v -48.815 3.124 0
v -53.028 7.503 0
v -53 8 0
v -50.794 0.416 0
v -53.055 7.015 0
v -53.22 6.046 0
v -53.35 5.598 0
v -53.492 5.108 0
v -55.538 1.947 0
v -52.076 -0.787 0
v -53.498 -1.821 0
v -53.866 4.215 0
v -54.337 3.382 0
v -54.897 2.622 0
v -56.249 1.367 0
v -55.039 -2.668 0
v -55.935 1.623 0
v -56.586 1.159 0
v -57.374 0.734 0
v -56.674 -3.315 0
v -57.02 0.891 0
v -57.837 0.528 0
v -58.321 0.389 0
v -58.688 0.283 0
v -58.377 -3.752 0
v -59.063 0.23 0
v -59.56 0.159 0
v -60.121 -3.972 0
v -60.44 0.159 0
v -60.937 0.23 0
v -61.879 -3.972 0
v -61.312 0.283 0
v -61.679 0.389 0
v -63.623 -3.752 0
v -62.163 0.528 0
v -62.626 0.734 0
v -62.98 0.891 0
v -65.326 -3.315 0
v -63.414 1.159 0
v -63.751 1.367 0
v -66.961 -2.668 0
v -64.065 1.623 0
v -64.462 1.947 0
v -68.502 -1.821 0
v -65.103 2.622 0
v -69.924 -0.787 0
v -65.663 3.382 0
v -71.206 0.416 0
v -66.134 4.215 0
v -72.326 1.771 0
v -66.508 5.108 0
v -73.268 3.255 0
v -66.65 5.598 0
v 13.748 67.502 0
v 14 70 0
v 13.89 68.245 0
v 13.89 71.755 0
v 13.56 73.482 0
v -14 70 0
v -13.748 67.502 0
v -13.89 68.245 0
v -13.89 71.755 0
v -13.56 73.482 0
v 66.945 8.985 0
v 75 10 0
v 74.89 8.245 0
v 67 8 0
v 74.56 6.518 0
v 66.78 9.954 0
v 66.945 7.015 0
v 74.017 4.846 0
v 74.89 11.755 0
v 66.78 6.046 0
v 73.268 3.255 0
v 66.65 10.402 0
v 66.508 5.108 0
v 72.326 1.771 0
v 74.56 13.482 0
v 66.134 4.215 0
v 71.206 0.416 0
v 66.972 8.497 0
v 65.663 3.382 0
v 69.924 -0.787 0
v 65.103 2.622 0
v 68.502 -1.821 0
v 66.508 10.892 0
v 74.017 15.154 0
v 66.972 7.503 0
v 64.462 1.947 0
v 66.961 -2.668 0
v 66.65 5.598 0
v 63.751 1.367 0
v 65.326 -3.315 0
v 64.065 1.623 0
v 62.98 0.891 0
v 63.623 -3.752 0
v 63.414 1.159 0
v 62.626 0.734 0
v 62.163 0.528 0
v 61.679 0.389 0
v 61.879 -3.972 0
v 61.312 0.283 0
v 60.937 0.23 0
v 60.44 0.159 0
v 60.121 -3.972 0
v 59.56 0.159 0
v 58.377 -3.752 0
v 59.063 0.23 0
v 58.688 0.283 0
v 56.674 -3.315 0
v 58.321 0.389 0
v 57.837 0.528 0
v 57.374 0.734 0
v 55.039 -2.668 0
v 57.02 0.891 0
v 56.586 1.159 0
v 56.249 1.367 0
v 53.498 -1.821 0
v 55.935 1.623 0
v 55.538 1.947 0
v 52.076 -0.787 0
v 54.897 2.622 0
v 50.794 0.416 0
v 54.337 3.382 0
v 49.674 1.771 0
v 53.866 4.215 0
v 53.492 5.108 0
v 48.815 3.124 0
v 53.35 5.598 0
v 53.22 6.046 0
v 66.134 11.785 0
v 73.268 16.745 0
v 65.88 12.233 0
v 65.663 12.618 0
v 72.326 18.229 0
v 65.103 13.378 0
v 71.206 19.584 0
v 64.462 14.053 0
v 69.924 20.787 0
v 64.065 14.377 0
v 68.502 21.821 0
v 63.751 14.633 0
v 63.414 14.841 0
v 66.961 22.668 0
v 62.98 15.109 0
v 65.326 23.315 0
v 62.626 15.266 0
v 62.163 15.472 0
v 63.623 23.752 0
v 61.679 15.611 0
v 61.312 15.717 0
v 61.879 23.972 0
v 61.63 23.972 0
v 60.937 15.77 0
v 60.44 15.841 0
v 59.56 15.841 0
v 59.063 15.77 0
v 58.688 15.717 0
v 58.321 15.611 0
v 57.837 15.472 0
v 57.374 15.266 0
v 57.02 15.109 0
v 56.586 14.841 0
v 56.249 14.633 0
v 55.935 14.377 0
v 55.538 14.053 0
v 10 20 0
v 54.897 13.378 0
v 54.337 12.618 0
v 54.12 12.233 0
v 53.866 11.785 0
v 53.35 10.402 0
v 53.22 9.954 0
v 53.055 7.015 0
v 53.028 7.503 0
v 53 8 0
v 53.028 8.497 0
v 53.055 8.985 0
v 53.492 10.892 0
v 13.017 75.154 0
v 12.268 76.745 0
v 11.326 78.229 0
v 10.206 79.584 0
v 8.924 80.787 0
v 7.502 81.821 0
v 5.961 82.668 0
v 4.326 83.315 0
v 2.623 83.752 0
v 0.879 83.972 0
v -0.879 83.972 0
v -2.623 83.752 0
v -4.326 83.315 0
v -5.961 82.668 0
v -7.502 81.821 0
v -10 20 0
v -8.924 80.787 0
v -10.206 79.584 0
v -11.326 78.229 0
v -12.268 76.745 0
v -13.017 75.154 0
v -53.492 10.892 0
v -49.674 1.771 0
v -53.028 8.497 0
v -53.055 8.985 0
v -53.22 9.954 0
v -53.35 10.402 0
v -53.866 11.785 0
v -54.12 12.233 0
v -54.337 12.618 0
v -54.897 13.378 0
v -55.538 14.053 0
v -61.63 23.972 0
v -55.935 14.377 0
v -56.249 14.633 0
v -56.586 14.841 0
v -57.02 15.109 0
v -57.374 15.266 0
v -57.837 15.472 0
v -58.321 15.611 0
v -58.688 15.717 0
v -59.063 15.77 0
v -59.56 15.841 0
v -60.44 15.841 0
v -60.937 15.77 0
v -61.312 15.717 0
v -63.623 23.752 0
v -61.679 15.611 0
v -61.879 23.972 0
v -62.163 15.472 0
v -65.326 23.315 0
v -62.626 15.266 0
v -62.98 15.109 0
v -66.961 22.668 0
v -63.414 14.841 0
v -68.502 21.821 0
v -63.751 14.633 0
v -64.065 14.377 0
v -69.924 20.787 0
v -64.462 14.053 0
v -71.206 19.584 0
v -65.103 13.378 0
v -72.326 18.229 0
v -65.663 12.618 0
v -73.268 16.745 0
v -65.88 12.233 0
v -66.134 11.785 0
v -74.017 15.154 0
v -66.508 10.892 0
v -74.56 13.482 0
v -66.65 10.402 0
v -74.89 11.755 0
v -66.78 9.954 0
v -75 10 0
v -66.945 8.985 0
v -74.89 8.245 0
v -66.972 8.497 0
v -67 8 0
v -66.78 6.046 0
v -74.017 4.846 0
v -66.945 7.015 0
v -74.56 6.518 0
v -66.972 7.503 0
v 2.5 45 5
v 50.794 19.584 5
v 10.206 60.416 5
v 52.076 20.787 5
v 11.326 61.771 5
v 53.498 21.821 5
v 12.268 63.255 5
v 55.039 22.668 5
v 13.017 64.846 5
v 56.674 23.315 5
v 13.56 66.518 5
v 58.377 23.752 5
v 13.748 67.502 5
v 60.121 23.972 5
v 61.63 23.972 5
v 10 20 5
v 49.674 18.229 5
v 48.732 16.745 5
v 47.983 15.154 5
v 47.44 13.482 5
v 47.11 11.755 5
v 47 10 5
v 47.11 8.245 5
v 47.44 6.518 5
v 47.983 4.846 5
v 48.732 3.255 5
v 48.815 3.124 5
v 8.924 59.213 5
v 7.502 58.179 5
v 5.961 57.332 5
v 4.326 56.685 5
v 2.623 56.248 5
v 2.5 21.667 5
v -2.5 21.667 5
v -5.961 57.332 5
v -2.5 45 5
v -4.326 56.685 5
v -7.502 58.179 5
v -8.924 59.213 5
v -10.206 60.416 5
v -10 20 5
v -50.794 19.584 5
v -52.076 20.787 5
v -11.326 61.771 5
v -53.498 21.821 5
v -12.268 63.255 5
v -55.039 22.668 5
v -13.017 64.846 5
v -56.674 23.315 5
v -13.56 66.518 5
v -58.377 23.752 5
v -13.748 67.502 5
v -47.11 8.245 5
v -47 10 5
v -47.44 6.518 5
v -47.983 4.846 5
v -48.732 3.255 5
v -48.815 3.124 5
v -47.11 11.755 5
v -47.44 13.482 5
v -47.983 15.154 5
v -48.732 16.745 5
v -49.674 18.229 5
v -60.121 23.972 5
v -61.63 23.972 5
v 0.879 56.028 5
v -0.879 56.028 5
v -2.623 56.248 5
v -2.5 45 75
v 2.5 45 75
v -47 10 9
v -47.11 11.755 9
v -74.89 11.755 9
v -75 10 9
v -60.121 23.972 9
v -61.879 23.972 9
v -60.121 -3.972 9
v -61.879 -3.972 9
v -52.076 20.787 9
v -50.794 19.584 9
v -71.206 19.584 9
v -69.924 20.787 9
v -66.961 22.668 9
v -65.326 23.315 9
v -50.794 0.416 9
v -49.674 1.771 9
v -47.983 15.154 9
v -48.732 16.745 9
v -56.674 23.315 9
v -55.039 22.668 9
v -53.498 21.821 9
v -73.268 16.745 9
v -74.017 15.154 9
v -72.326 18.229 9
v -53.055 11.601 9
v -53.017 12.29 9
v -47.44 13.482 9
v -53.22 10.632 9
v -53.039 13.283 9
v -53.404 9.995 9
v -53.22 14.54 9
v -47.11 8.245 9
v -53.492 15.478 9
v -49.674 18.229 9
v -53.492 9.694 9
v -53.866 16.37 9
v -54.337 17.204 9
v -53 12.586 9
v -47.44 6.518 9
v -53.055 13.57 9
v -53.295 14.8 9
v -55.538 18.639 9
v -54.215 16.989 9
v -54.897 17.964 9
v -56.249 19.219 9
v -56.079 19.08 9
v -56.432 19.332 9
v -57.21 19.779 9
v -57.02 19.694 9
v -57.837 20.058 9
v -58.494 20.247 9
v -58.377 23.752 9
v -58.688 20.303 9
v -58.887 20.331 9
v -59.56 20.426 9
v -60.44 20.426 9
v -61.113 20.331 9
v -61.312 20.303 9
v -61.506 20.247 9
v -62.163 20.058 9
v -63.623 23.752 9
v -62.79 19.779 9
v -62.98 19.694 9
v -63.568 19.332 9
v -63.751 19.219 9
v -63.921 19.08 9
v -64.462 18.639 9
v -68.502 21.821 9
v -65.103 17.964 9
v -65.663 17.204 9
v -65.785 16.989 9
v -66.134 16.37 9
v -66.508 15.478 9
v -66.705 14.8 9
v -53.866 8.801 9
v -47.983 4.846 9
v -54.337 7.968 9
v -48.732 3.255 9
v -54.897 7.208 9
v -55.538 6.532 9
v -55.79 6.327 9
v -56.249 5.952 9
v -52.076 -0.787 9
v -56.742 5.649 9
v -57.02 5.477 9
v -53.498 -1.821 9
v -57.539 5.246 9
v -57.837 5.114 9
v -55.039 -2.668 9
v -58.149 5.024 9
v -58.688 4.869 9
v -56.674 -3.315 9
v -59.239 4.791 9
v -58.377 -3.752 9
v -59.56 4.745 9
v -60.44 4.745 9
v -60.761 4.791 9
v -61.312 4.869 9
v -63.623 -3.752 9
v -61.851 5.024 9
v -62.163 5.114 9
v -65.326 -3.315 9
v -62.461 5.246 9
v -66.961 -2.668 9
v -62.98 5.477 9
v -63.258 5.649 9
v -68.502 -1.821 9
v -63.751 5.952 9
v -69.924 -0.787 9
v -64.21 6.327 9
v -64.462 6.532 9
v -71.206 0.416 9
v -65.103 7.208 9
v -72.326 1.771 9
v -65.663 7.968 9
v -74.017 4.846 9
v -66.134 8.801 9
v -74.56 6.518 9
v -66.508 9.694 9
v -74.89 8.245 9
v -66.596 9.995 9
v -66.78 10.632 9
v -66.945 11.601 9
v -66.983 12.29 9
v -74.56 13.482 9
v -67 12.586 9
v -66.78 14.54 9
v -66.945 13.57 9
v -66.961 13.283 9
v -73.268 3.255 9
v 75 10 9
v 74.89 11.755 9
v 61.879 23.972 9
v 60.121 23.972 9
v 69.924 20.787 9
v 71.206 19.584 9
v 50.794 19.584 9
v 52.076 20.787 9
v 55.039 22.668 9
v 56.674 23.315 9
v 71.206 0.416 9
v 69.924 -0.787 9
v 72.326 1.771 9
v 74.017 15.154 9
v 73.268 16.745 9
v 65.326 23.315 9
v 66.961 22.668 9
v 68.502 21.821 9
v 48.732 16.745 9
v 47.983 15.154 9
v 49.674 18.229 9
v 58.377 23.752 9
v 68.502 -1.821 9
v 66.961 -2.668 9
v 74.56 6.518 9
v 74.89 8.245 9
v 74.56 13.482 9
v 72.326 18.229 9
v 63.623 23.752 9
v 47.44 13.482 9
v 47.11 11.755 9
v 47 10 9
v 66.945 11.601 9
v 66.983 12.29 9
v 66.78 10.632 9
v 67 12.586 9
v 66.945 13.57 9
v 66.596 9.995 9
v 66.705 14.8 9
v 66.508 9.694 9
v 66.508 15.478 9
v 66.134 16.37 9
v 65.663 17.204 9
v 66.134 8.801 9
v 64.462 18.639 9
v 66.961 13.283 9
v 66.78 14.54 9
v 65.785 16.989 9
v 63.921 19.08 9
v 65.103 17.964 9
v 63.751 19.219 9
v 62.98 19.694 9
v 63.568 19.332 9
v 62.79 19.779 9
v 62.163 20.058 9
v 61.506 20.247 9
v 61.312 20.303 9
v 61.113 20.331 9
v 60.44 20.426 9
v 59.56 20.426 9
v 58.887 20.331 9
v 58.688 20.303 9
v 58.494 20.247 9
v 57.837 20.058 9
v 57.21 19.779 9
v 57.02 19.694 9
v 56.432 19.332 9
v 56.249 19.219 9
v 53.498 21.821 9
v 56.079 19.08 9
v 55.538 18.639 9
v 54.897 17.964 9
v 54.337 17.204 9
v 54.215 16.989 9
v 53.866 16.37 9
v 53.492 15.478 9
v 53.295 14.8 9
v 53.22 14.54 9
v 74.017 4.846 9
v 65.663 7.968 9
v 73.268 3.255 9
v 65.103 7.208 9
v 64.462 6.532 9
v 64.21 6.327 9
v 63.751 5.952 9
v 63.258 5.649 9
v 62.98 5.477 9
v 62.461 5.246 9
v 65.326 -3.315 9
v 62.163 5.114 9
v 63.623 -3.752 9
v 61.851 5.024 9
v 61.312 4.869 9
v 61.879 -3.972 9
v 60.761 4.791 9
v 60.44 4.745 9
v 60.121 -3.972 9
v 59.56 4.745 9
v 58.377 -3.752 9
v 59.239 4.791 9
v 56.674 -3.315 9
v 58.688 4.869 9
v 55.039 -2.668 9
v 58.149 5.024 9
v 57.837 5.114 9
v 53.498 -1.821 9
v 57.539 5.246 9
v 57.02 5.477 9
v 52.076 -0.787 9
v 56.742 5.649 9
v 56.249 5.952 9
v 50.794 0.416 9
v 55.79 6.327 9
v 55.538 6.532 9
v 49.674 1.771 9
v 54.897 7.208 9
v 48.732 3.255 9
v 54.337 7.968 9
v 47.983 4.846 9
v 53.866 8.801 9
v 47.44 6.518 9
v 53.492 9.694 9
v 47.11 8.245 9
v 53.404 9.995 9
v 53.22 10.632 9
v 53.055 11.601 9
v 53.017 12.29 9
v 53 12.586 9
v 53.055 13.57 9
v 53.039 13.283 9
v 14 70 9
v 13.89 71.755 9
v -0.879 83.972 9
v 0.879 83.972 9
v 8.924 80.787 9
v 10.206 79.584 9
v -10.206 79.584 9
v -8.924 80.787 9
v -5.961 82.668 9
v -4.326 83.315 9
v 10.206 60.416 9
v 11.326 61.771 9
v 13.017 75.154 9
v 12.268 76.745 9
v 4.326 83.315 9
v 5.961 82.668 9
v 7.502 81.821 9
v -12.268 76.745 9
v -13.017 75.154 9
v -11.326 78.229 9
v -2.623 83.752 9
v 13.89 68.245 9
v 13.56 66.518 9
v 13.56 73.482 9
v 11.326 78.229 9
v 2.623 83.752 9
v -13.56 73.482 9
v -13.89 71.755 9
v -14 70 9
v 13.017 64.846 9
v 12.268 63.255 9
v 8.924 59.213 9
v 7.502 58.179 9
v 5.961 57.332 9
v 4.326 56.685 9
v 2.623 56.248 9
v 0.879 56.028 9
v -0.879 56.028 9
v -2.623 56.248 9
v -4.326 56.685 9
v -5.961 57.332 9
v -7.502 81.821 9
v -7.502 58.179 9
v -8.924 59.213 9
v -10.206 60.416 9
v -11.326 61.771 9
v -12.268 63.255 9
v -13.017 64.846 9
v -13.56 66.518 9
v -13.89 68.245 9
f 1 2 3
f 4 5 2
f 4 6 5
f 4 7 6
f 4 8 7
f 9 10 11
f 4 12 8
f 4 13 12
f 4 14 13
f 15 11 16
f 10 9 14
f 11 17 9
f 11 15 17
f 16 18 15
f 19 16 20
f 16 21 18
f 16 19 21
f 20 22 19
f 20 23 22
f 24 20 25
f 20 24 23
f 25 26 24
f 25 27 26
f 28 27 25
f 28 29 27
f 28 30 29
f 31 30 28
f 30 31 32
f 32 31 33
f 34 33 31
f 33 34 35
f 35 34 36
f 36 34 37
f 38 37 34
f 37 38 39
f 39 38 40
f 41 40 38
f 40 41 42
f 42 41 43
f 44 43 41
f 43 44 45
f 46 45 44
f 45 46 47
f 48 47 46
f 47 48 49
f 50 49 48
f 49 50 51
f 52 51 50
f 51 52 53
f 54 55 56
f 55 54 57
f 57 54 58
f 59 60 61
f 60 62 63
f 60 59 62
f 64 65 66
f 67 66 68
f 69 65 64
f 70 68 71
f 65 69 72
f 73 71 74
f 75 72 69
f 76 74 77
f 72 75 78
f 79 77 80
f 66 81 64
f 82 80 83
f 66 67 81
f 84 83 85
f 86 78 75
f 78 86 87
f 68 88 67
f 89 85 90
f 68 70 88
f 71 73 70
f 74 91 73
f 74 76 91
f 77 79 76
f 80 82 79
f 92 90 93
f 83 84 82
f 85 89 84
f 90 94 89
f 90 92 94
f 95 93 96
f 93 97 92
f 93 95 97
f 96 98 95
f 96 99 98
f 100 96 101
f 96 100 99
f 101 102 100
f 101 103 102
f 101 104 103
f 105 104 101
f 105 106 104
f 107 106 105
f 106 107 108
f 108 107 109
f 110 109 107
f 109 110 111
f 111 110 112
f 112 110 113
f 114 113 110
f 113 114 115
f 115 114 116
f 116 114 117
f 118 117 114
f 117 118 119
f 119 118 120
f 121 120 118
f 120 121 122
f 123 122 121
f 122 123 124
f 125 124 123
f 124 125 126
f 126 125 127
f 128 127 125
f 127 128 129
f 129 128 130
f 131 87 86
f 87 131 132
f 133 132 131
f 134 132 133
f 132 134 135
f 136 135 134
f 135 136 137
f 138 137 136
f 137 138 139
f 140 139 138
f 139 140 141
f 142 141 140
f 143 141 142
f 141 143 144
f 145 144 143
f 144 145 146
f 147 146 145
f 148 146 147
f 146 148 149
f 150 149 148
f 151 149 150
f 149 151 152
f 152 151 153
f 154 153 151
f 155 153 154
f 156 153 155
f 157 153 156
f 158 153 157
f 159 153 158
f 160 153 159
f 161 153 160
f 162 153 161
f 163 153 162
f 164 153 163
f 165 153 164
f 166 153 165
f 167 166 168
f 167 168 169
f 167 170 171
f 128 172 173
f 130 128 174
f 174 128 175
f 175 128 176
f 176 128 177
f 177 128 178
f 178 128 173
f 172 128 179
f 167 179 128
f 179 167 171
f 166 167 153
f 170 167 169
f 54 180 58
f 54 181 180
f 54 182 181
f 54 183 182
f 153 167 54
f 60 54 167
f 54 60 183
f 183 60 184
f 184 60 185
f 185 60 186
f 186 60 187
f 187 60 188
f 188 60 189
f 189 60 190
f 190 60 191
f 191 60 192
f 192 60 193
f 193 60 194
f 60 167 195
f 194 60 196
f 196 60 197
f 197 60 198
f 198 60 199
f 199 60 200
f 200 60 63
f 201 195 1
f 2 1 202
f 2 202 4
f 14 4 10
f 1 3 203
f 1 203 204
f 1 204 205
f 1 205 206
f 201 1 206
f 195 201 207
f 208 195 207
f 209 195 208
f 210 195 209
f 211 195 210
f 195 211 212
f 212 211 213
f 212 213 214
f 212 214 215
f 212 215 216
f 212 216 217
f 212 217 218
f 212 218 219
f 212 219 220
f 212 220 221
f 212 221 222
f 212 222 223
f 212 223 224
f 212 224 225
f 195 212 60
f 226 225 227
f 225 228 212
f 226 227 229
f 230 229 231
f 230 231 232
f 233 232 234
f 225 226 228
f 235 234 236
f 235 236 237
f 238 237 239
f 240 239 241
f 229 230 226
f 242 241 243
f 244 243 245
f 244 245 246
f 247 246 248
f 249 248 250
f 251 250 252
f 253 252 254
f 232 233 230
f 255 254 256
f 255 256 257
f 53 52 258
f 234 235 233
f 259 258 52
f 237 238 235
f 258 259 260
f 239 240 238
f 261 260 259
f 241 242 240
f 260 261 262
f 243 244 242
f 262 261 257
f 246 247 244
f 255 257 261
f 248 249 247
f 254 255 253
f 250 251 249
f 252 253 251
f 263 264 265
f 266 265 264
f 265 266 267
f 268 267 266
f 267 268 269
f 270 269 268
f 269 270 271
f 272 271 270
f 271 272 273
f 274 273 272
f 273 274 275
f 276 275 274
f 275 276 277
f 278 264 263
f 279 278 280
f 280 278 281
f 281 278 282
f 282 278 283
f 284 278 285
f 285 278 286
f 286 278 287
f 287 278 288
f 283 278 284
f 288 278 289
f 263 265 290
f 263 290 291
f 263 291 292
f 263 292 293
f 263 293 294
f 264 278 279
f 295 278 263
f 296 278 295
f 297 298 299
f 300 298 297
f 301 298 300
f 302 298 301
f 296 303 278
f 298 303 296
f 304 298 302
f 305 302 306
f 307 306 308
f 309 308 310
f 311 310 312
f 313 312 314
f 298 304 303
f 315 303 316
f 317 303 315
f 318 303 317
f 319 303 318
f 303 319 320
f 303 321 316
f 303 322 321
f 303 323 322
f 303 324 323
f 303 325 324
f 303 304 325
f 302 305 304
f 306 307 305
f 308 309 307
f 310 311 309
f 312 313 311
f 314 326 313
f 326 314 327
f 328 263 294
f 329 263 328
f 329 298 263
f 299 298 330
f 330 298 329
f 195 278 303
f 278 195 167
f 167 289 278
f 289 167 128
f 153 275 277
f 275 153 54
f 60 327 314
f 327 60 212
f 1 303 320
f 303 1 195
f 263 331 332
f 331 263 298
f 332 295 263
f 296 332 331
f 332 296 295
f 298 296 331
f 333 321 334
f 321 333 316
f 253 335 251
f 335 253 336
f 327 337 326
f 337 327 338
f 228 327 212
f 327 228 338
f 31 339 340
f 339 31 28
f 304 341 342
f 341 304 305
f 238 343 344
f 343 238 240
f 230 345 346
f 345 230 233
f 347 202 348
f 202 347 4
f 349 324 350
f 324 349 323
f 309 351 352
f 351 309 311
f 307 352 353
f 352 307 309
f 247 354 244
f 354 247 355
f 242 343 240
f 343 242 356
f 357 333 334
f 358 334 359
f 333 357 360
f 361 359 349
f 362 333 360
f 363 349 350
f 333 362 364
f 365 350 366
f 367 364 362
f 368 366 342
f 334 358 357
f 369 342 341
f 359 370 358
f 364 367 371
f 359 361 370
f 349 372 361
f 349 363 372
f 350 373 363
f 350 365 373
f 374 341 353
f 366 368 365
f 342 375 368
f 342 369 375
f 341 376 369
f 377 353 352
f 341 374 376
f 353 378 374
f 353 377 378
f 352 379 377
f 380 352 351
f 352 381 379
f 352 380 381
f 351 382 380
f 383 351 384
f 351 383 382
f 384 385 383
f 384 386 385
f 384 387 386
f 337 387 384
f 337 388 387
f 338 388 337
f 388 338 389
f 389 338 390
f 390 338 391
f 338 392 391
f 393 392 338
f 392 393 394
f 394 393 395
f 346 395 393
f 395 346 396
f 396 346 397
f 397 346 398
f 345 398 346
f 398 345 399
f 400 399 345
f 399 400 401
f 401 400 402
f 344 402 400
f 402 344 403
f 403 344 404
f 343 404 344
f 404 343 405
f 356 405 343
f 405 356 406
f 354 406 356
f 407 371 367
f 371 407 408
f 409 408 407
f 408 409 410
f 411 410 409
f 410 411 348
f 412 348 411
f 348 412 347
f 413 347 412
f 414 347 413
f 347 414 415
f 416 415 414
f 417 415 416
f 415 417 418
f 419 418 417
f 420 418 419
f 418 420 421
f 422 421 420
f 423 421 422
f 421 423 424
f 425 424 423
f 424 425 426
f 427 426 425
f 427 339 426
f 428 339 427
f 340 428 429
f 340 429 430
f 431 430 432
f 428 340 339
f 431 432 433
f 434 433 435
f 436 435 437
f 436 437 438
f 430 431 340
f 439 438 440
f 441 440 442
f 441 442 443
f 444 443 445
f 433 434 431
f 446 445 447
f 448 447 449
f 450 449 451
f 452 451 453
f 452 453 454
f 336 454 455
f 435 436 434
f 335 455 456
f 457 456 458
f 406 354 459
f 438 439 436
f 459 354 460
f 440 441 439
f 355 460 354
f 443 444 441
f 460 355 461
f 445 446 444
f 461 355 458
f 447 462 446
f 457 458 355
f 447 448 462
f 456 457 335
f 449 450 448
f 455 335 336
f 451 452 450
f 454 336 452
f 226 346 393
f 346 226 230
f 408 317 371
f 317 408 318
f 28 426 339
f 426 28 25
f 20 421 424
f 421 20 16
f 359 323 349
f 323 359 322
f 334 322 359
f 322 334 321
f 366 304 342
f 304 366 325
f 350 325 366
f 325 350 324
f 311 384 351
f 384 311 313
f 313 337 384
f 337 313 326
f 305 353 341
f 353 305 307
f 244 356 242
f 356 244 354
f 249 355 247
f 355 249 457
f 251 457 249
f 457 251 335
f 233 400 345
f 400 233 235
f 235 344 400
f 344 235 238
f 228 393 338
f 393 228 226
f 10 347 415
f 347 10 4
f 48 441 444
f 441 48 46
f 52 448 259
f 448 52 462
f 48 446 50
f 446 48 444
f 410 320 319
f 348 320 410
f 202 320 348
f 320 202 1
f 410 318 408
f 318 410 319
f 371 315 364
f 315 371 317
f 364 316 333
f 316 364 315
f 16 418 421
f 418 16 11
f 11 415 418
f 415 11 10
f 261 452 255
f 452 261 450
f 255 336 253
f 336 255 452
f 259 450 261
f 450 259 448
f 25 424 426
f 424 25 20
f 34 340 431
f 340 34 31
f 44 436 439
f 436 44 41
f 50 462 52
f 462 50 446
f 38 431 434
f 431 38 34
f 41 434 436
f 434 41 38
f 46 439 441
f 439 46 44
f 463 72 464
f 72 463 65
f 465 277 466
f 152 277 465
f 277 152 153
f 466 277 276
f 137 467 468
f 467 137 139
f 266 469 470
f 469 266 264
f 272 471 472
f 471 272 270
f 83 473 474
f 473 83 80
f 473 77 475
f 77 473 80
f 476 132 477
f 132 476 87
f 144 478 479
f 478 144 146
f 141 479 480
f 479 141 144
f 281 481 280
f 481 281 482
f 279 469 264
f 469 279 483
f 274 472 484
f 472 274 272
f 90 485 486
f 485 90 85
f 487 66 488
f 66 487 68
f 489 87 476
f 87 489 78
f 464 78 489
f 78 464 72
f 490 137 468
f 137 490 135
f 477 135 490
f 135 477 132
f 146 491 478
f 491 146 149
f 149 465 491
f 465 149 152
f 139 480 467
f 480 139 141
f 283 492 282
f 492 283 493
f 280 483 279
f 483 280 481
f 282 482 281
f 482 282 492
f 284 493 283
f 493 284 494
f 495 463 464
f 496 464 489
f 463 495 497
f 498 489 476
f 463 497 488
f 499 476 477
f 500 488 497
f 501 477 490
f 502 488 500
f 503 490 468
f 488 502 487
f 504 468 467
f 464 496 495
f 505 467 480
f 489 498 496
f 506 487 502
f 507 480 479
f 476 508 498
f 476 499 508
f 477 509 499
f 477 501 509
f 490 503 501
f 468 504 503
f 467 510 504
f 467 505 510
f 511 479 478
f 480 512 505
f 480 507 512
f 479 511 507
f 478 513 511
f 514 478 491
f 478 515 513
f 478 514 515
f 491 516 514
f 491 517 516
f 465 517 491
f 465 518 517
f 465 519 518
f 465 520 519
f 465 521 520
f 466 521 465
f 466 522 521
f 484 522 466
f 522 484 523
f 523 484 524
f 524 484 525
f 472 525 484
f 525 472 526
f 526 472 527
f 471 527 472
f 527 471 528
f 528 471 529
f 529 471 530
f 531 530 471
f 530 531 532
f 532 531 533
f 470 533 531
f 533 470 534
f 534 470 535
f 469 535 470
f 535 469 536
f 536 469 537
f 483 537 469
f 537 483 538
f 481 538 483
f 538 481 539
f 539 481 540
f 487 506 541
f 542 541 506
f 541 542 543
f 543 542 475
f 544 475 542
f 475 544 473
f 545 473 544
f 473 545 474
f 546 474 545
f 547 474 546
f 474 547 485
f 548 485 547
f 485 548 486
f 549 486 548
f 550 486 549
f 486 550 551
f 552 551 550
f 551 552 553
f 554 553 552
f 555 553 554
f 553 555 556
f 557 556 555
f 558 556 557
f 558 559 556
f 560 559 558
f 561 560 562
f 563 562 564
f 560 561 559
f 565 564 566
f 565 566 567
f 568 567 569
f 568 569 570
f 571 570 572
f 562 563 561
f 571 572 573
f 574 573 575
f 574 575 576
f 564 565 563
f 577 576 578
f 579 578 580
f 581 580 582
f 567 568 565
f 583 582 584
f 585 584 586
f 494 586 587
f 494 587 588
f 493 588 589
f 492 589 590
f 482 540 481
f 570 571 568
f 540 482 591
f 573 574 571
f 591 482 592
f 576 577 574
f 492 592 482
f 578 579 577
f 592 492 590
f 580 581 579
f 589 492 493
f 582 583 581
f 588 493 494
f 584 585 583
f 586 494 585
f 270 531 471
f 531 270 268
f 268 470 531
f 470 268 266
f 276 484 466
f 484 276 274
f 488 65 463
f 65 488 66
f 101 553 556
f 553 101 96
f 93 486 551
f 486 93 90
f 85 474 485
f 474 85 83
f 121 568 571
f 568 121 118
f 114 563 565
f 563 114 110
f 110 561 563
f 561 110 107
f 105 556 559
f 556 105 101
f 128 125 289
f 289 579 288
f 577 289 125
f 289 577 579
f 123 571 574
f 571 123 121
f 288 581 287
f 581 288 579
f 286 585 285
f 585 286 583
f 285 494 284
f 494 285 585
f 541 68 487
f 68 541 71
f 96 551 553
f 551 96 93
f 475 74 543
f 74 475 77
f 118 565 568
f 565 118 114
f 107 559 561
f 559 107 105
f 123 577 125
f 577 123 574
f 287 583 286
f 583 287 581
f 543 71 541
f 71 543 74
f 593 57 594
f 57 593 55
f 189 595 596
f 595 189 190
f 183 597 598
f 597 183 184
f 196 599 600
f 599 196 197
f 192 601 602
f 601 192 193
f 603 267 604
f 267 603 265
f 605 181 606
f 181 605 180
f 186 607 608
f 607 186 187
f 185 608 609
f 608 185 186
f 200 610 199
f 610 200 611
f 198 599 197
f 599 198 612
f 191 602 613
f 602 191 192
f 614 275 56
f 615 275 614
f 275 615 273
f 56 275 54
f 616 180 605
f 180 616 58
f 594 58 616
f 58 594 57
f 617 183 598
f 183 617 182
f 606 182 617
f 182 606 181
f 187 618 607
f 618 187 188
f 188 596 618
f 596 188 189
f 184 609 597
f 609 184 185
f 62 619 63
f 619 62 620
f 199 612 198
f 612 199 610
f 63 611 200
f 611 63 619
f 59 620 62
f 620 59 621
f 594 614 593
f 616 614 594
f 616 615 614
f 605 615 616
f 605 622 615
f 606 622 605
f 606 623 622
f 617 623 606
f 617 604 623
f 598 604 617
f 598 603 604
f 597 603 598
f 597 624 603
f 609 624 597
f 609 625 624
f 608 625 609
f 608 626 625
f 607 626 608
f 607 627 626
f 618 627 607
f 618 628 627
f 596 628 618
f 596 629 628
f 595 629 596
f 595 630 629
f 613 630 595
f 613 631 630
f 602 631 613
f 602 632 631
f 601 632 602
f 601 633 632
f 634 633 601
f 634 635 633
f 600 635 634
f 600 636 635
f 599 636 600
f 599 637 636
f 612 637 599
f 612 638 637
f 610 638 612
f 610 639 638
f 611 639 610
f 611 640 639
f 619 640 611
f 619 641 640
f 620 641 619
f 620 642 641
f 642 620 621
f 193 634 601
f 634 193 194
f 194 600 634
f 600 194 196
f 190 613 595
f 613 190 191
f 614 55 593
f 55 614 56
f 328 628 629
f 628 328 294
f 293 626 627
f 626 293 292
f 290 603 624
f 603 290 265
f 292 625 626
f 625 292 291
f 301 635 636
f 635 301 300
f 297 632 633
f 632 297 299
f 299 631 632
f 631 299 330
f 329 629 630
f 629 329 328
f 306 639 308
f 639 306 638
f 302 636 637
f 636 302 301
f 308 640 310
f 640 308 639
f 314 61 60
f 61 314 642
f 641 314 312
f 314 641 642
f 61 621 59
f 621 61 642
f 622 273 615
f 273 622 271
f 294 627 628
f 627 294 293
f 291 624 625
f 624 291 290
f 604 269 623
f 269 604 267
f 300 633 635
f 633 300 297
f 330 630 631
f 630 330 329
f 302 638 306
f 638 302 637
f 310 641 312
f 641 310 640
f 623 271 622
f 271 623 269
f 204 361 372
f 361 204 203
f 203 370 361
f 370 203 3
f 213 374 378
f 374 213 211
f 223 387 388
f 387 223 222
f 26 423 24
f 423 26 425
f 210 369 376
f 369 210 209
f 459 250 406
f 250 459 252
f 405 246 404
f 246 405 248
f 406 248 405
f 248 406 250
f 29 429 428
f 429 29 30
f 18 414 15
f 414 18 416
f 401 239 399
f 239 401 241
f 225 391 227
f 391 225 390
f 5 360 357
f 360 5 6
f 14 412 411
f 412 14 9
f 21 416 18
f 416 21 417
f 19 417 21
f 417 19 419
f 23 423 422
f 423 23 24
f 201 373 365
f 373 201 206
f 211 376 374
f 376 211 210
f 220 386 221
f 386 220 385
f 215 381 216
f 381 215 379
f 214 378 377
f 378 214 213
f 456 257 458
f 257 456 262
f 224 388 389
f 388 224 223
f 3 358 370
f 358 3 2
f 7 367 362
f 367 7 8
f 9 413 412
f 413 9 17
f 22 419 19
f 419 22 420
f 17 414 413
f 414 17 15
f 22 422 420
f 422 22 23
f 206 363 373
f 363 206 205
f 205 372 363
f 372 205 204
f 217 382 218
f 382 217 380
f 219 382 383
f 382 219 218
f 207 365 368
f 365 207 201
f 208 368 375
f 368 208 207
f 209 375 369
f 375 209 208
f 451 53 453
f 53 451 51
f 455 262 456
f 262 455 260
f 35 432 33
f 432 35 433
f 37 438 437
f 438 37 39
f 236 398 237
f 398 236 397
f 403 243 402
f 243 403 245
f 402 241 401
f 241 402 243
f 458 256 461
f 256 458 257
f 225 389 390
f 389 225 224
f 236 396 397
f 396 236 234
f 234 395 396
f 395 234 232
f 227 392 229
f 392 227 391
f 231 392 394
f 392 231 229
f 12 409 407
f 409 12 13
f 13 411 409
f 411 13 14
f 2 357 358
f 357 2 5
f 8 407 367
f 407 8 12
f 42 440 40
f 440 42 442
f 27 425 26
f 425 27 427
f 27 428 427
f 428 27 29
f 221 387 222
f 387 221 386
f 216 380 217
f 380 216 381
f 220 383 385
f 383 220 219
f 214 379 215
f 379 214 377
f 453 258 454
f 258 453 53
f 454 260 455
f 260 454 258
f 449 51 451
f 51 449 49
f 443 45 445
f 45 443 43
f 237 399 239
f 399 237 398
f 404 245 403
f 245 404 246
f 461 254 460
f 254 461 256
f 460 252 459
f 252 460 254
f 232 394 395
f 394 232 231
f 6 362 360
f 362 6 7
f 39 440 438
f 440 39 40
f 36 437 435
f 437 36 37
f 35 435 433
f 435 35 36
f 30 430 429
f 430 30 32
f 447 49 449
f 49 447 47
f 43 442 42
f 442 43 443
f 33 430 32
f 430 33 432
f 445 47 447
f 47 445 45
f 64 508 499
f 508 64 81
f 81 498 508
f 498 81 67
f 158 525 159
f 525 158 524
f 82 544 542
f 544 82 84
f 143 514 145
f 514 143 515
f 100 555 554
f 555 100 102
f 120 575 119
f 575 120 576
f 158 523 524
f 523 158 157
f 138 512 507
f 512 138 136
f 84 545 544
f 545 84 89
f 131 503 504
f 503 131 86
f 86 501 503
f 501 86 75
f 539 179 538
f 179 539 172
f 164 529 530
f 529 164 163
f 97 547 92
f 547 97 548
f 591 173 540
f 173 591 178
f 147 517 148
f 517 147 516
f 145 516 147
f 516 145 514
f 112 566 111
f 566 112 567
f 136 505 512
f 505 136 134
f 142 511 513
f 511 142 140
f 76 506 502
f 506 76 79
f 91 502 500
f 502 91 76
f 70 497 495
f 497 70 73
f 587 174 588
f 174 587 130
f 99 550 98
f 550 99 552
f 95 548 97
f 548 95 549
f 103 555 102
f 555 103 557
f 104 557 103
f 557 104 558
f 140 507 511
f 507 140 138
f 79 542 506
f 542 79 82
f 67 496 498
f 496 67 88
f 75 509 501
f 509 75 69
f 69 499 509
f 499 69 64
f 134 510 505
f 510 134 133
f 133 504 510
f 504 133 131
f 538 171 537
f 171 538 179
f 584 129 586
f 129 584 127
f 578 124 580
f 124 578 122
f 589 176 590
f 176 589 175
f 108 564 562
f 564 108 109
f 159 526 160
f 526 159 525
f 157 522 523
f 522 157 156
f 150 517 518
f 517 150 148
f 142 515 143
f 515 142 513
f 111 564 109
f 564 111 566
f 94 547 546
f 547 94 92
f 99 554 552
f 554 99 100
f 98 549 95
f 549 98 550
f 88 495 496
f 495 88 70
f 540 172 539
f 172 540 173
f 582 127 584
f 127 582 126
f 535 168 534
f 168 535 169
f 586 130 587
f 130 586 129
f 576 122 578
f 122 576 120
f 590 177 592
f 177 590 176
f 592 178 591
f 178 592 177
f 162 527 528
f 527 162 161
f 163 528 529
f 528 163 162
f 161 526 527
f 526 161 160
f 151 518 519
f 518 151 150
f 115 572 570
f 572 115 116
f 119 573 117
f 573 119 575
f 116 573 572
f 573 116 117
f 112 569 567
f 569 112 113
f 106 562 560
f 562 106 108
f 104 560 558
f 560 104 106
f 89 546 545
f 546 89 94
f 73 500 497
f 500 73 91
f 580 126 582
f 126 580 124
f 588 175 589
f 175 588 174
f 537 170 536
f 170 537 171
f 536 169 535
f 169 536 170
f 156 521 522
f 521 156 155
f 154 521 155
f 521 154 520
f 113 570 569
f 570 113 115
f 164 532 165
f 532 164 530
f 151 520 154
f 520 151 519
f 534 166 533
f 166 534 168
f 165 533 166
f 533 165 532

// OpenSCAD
$fn=50;


//Triangle
Profile1=[
  [0,80],
  [-66,20],
  [-66,0],
  [-56,0],
  [-10,20],
  [10,20],
  [56,00],
  [66,0],
  [66,20],
  [0,80]];

length=5;
width=25;
height=75;
    
Points1=[
[0,0,0],
[length,0,0],
[length,width,0],
[0,width,0],
[0,width,height],
[length,width,height]];

Faces1=[
[0,1,2,3],
[5,4,3,2],
[0,4,5,1],
[0,3,4],
[5,2,1]];
        
difference(){
    main();
    
    translate([-60,8,0])
    rotate([-27,0,0])
        #cylinder(h=50,r=7,center=true);
        
    translate([60,8,0])
    rotate([-27,0,0])
        #cylinder(h=50,r=7,center=true);
};

module main() {
    linear_extrude(5)
    polygon(Profile1);

    translate([-length/2,20,0])
    polyhedron(Points1,Faces1);
    
    translate([-61,10,0])
        cylinder(h=9,r=14,center=false);
    translate([61,10,0])
        cylinder(h=9,r=14,center=false);
    translate([0,70,0])
        cylinder(h=9,r=14,center=false);
}
